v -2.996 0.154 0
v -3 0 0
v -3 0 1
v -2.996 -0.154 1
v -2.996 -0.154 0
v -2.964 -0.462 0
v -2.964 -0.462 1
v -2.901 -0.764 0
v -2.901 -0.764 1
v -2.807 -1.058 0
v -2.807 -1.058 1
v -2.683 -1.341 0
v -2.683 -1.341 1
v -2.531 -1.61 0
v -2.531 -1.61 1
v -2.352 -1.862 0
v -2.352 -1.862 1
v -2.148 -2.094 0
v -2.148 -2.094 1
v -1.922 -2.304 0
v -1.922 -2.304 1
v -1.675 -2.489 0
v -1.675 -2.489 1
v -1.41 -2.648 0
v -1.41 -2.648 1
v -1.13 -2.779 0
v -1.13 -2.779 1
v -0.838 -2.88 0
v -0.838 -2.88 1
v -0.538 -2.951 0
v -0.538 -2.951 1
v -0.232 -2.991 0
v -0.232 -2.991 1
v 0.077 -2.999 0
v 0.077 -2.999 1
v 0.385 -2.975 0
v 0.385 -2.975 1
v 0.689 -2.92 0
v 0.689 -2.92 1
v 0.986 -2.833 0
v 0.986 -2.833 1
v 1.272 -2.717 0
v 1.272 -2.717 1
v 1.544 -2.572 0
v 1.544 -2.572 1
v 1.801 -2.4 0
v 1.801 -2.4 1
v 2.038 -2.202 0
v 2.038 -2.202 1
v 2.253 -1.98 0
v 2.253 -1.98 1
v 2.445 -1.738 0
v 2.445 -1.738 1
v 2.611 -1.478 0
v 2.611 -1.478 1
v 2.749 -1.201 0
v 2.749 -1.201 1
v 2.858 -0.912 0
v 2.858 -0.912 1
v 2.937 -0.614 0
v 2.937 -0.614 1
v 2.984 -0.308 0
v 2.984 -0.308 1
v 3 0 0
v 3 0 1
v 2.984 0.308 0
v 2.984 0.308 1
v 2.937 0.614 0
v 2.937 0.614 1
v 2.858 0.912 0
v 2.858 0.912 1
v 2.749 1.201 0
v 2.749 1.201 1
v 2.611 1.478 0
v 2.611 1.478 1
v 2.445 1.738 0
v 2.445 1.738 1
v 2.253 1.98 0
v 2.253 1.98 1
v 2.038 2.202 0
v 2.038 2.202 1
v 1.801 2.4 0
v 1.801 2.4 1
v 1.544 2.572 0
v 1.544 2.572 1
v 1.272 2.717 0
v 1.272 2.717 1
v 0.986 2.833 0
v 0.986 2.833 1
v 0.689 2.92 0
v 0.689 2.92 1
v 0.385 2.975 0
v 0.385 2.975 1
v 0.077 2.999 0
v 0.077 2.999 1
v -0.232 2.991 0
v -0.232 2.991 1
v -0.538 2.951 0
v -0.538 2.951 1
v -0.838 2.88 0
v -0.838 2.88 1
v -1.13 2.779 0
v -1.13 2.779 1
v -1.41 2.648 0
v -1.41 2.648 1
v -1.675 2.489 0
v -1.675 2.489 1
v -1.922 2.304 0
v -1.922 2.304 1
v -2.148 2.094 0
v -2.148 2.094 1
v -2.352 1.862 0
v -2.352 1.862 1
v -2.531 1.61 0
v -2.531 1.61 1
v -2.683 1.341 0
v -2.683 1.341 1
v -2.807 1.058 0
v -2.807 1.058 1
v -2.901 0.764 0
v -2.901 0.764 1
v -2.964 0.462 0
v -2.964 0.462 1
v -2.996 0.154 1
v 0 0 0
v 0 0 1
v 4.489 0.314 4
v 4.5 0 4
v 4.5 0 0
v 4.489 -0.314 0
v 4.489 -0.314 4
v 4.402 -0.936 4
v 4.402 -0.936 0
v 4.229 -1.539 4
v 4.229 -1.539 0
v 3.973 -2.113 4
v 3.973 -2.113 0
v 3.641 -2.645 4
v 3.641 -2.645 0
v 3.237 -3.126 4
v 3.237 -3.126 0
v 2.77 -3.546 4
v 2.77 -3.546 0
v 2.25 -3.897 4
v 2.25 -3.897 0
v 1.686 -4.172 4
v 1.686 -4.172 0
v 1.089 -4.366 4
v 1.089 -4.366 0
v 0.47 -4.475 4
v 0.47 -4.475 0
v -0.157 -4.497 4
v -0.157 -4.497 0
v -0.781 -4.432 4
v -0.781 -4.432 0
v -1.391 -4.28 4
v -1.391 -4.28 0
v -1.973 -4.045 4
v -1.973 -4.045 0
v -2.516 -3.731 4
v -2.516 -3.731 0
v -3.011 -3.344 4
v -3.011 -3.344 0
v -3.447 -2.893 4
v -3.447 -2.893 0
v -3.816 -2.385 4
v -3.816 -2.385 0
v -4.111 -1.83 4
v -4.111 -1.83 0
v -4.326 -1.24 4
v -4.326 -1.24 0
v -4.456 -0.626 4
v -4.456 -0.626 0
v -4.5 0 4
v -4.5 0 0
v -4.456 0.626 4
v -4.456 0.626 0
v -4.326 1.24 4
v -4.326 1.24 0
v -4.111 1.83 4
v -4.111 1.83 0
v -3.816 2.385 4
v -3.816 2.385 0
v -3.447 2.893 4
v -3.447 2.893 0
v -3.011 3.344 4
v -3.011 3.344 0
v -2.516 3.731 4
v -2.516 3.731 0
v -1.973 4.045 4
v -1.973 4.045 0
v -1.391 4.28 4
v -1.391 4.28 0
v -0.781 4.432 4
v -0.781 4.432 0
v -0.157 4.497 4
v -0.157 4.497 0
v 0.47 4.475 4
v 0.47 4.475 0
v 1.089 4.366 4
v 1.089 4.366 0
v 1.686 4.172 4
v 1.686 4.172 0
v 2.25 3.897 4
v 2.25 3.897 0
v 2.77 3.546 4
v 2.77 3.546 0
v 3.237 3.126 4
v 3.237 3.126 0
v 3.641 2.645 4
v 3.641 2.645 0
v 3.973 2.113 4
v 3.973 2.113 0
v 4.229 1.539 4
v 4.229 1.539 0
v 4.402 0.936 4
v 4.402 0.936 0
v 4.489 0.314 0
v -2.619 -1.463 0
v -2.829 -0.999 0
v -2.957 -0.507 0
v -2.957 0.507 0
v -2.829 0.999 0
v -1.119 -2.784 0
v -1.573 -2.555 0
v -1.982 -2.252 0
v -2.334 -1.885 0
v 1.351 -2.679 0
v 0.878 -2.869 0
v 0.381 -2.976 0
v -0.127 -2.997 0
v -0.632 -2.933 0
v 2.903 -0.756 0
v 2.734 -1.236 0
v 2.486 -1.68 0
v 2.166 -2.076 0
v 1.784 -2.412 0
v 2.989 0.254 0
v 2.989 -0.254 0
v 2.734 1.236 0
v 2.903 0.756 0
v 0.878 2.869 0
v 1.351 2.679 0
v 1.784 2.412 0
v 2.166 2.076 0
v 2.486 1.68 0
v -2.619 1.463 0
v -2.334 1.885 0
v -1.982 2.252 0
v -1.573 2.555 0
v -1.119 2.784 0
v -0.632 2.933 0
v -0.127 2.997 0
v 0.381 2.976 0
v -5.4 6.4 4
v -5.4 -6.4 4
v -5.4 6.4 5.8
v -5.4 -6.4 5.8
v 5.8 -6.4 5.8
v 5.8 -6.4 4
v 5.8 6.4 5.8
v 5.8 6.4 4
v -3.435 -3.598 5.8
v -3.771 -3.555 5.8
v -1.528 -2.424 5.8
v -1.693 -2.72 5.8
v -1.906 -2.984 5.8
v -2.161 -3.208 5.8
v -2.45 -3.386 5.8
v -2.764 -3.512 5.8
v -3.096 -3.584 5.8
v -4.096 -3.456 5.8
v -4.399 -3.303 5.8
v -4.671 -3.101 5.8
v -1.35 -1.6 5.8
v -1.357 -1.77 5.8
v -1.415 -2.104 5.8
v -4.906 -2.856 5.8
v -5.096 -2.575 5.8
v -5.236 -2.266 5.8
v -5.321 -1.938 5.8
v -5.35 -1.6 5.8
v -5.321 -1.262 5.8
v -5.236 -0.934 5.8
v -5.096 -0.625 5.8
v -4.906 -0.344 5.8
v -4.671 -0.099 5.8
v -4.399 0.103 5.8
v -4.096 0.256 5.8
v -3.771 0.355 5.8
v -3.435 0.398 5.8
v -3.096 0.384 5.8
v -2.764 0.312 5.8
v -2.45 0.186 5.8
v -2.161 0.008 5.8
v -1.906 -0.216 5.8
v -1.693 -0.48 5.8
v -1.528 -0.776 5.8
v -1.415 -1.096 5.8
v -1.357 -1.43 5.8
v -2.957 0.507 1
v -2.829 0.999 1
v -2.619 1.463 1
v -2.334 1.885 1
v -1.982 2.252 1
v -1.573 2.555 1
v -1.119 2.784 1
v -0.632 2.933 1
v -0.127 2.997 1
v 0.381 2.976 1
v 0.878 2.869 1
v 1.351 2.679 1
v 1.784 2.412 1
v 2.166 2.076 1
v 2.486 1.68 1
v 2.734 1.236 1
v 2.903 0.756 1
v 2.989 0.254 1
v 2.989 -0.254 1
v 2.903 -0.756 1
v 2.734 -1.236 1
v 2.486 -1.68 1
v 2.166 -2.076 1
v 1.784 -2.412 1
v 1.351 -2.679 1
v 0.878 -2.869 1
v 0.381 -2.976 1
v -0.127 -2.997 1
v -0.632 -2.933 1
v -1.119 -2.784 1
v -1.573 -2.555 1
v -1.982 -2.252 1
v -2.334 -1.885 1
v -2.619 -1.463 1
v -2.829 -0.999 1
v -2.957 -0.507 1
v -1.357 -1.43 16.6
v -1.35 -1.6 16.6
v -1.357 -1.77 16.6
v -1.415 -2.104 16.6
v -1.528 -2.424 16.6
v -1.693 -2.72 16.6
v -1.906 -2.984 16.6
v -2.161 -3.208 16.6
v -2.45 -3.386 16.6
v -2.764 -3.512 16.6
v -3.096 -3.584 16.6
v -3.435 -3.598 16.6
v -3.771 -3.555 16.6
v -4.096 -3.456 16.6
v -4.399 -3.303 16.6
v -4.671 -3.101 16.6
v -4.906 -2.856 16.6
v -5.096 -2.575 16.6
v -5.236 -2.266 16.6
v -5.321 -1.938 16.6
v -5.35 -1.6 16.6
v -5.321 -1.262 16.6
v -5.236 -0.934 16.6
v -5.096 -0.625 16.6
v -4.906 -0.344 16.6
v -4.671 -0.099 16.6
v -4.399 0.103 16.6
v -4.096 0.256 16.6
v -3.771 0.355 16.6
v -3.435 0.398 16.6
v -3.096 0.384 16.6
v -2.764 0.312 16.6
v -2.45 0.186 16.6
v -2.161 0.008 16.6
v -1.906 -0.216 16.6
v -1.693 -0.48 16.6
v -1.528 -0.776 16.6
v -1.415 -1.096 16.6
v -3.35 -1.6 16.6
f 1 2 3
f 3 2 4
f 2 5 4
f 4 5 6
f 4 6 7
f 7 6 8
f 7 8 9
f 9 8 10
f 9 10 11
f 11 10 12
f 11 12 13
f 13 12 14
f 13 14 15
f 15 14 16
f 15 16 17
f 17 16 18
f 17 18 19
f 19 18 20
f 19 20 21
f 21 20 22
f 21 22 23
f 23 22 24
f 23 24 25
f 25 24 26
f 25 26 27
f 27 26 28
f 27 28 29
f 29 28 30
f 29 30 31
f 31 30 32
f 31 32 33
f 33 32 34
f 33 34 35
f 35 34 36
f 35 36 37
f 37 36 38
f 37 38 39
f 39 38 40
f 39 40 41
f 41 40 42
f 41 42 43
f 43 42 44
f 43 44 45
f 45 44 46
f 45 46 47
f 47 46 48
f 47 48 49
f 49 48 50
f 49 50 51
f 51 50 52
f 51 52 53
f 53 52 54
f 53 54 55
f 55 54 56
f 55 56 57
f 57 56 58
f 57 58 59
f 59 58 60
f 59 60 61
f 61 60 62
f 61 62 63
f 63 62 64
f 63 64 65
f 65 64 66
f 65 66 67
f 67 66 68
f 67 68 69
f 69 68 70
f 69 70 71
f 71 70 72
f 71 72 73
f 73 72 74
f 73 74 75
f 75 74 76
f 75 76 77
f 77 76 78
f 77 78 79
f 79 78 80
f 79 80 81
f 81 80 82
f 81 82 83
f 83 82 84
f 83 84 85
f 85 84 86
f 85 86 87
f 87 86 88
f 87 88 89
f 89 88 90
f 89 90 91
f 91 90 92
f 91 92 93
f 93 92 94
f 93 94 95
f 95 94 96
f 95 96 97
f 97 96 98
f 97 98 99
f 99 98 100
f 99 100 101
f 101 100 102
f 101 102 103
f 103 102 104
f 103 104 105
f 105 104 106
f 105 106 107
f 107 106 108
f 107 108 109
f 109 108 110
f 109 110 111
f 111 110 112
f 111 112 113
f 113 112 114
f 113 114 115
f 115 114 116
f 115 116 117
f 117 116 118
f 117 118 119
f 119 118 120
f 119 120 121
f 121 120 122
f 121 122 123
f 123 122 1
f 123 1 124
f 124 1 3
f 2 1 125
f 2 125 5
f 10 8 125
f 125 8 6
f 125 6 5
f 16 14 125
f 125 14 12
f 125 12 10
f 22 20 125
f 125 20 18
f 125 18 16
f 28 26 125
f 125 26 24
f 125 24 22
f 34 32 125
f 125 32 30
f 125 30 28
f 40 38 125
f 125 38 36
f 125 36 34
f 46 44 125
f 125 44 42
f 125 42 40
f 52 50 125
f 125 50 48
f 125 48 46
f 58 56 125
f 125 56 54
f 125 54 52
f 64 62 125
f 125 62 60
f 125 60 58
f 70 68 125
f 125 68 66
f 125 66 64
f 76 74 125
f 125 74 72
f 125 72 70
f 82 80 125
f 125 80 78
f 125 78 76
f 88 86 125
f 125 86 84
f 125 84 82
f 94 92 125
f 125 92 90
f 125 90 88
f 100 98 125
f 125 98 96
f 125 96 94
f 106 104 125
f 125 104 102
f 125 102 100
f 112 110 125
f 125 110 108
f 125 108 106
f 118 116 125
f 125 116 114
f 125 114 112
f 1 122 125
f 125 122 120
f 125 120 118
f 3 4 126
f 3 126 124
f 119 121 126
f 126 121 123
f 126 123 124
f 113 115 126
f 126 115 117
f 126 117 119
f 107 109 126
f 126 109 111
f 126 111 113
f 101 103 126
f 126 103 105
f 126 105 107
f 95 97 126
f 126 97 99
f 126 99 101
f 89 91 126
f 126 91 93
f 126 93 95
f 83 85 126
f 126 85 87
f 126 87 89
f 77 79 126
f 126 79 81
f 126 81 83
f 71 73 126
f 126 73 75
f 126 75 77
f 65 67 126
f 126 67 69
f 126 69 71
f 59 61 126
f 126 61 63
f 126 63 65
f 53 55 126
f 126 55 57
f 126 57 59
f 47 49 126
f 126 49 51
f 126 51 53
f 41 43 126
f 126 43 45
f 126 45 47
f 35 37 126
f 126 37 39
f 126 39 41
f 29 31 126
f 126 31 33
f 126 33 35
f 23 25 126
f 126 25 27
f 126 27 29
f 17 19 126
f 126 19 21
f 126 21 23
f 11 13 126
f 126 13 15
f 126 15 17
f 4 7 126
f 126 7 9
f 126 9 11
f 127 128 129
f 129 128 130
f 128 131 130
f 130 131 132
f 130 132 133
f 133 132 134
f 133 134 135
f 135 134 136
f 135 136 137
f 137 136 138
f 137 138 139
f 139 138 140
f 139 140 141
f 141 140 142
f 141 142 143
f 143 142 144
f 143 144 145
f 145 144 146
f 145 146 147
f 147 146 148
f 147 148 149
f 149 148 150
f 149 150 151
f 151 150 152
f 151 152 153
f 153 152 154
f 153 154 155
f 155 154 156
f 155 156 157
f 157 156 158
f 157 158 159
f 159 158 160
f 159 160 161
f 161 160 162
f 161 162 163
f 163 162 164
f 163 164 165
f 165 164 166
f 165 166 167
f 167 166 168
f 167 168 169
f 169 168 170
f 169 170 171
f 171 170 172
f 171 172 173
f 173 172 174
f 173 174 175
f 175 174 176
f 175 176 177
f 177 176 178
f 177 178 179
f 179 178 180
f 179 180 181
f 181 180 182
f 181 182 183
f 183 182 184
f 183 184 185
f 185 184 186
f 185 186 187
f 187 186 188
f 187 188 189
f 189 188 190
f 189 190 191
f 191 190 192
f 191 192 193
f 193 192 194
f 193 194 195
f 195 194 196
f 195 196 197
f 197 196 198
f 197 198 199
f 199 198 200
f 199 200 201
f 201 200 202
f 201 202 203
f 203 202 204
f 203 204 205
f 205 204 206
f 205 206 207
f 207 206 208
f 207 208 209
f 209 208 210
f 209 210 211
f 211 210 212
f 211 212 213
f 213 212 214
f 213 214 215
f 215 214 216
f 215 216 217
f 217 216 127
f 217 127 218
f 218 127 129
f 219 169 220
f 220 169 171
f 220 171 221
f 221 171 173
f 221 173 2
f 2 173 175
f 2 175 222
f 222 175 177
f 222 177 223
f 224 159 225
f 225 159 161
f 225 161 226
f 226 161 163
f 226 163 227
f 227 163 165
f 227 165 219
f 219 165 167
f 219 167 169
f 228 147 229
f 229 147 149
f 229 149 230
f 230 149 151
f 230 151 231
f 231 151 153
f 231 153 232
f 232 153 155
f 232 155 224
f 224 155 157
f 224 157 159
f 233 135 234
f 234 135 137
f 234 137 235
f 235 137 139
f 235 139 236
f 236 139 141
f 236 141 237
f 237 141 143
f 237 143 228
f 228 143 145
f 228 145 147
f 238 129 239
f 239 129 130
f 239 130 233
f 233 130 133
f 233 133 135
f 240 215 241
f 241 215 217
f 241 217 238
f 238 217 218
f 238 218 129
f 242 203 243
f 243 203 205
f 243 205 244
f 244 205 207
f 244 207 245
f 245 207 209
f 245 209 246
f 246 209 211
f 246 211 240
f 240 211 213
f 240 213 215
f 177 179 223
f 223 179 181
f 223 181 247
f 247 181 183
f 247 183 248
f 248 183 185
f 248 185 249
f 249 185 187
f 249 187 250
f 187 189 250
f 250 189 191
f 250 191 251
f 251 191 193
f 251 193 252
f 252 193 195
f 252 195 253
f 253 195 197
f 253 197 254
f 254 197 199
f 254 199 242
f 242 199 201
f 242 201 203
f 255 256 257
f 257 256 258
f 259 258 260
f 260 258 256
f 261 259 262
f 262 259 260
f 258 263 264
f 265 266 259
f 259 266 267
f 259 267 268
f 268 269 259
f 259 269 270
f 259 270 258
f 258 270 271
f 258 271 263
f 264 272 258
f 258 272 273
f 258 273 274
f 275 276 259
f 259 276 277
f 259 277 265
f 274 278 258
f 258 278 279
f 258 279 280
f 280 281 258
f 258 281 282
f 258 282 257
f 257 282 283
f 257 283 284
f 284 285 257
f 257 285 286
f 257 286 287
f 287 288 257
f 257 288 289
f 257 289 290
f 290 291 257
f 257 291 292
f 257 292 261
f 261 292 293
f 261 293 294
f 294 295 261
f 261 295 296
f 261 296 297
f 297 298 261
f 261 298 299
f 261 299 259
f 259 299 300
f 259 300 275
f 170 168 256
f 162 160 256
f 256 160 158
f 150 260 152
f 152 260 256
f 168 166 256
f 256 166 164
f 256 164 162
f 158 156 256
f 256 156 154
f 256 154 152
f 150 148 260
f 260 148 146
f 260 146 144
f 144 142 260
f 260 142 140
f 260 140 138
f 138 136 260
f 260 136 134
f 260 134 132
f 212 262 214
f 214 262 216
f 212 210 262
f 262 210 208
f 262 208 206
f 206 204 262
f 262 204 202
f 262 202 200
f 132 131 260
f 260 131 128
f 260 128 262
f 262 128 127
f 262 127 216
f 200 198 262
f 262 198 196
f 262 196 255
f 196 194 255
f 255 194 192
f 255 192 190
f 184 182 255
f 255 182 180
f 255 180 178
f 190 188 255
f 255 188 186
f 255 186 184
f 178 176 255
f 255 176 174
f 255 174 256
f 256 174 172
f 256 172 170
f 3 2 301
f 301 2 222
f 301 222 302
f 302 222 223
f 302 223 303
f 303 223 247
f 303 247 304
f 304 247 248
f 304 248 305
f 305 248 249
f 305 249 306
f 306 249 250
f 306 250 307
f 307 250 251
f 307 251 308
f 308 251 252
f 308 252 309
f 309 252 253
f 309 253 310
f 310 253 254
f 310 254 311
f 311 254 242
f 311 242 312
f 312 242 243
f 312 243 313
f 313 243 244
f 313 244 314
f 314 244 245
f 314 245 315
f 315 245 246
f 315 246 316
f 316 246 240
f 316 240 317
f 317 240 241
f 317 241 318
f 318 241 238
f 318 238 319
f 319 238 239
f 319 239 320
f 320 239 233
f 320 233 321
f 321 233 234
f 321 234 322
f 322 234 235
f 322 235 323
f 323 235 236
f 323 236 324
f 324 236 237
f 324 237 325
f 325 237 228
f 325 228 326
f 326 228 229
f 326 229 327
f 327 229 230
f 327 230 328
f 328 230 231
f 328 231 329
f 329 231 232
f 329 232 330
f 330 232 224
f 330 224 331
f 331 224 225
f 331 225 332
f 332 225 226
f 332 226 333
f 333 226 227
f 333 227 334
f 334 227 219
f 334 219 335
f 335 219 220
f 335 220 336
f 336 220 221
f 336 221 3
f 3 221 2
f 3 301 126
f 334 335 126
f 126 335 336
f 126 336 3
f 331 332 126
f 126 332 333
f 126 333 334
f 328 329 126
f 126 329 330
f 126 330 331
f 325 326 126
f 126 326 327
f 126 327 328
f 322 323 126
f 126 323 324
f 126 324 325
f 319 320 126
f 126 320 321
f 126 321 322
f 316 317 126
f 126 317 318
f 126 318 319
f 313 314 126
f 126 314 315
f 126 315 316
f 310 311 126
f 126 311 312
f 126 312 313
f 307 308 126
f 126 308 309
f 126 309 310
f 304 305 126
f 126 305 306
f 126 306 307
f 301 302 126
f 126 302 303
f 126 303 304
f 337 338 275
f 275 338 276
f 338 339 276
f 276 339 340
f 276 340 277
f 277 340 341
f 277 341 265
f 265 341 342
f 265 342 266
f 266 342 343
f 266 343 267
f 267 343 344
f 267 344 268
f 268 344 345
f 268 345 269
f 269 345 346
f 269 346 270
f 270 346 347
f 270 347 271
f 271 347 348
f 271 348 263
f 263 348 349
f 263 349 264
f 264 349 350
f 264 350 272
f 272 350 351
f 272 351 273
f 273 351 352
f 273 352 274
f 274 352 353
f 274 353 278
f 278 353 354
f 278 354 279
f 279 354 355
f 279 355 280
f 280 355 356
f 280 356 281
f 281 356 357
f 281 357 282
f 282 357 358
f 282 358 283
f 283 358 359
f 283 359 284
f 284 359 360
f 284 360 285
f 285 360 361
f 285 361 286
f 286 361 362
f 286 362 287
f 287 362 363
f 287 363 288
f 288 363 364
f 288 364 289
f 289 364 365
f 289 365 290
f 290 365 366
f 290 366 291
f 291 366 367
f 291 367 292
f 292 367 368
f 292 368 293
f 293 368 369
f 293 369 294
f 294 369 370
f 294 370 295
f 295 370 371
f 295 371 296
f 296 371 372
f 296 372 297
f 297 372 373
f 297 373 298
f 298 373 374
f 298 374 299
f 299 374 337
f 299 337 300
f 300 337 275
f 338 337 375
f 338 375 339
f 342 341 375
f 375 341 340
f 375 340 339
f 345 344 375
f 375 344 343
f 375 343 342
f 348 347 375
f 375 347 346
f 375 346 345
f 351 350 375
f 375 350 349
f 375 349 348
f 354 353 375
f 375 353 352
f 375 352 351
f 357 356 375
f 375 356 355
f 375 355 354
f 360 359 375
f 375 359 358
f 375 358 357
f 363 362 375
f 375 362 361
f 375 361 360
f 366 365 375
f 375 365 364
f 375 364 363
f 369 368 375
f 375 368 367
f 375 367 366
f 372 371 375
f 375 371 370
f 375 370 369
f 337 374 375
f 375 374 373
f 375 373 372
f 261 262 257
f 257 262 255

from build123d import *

# Parameters (mm, degrees)
SKETCH_1_R          = 4.5
EXTRUDE_1_DEPTH     = 4
SKETCH_2_W          = 11.2
SKETCH_2_H          = 13.8
EXTRUDE_2_DEPTH     = 1.8
SKETCH_3_R          = 3
CUT_EXTRUDE_1_DEPTH = 1
SKETCH_5_R          = 3
BLACK_DEPTH         = 1
SKETCH_4_R          = 2
EXTRUDE_5_DEPTH     = 10.8
SKETCH_6_W          = 11.2
SKETCH_6_H          = 1
CUT_EXTRUDE_2_DEPTH = 2


with BuildPart() as part:
    # Эскиз1 → Бобышка-Вытянуть1 (new body)
    with BuildSketch(Plane.XY):
        Circle(SKETCH_1_R)
    extrude(amount=EXTRUDE_1_DEPTH)

    # Эскиз2 → Бобышка-Вытянуть2 (add)
    with BuildSketch(Plane.XY.offset(4)):
        with Locations((0.2, 0.5)):
            Rectangle(SKETCH_2_W, SKETCH_2_H)
    extrude(amount=EXTRUDE_2_DEPTH)

    # Эскиз3 → Вырез-Вытянуть1 (cut)
    with BuildSketch(Plane(origin=(0, 0, 0), x_dir=(-1, 0, 0), z_dir=(0, 0, -1))):
        Circle(SKETCH_3_R)
    extrude(amount=-CUT_EXTRUDE_1_DEPTH, mode=Mode.SUBTRACT)

    # Эскиз4 → Бобышка-Вытянуть5 (add)
    with BuildSketch(Plane.XY.offset(5.8)):
        with Locations((-3.35, -1.6)):
            Circle(SKETCH_4_R)
    extrude(amount=EXTRUDE_5_DEPTH)

    # Эскиз6 → Вырез-Вытянуть2 (cut)
    with BuildSketch(Plane.XY.offset(5.8)):
        with Locations((0.2, 6.9)):
            Rectangle(SKETCH_6_W, SKETCH_6_H)
    extrude(amount=-CUT_EXTRUDE_2_DEPTH, mode=Mode.SUBTRACT)


with BuildPart() as body_2:
    # Эскиз5 → black (new body)
    with BuildSketch(Plane(origin=(0, 0, 1), x_dir=(-1, 0, 0), z_dir=(0, 0, -1))):
        Circle(SKETCH_5_R)
    extrude(amount=BLACK_DEPTH)


solid = Compound([part.part, body_2.part])
